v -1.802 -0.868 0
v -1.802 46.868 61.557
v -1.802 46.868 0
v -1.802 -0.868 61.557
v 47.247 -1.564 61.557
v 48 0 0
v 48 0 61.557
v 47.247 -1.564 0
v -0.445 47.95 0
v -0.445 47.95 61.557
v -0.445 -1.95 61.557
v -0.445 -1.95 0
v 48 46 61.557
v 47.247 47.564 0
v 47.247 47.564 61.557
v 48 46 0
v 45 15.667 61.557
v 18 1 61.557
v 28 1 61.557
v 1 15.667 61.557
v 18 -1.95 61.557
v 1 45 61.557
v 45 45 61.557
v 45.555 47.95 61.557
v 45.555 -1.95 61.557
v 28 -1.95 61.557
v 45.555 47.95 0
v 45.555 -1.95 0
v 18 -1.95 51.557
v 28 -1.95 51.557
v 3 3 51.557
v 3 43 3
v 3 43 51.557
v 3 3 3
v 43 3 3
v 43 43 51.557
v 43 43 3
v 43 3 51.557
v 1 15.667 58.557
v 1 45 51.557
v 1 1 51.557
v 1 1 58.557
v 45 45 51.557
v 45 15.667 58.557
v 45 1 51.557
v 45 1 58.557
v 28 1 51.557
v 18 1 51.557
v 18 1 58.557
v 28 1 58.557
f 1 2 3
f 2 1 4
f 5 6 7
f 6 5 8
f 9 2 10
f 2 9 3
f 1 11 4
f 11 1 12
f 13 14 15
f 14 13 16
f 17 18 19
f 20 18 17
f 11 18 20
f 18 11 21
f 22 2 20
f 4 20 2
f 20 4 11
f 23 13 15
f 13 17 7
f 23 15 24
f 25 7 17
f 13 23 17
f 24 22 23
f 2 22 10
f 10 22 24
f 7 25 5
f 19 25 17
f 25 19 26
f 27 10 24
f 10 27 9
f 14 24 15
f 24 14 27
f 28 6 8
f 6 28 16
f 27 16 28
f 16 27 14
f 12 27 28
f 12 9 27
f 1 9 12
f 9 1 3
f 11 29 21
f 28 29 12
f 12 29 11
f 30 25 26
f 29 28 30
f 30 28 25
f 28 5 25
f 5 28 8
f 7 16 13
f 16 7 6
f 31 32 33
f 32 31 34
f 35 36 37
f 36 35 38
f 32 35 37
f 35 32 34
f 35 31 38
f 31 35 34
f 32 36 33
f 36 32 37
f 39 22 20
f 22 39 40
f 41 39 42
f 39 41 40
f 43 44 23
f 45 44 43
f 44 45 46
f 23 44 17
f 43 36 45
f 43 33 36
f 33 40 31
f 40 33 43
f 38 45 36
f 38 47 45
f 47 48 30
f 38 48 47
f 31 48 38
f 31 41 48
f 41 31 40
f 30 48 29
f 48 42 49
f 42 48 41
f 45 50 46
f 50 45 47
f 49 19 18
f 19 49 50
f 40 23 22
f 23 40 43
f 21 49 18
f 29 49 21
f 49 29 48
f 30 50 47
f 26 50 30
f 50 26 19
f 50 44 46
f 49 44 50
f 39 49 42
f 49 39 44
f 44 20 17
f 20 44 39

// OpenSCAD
volumeInMl = 76.891;
totalVolumeInCubicMillimeters = volumeInMl * 1000;
volumeWidth = 40;
volumeLength = 40;
volumeHeight = (totalVolumeInCubicMillimeters / (volumeWidth * volumeLength)) + .5;

topSectionHeight = 10;
topSectionOffset = 2;
topSectionWidth = volumeWidth + topSectionOffset * 2;
topSectionLength = volumeLength + topSectionOffset * 2;
spoutNotchWidth = 10;


wallThickness = 3;
width = volumeWidth + wallThickness * 2;
length = volumeLength + wallThickness * 2;
height = volumeHeight + wallThickness + topSectionHeight;

union() {
    difference() {
        minkowski()
        {
          cube([width, length, height - 1]);
          cylinder(r=2,h=1);
        }
        
        translate([wallThickness, wallThickness, wallThickness])
            cube([volumeWidth, volumeLength, volumeHeight + topSectionHeight]);
        translate([wallThickness - topSectionOffset, wallThickness - topSectionOffset, wallThickness + volumeHeight])
            cube([topSectionWidth, topSectionLength, topSectionHeight]);
        translate([width/2 - spoutNotchWidth/2, -10, wallThickness + volumeHeight])
            cube([spoutNotchWidth, 20, topSectionHeight]);
    }
    translate([wallThickness - topSectionOffset, wallThickness - topSectionOffset, volumeHeight + topSectionHeight])
            cube([topSectionWidth, topSectionLength/3, wallThickness]);
}
